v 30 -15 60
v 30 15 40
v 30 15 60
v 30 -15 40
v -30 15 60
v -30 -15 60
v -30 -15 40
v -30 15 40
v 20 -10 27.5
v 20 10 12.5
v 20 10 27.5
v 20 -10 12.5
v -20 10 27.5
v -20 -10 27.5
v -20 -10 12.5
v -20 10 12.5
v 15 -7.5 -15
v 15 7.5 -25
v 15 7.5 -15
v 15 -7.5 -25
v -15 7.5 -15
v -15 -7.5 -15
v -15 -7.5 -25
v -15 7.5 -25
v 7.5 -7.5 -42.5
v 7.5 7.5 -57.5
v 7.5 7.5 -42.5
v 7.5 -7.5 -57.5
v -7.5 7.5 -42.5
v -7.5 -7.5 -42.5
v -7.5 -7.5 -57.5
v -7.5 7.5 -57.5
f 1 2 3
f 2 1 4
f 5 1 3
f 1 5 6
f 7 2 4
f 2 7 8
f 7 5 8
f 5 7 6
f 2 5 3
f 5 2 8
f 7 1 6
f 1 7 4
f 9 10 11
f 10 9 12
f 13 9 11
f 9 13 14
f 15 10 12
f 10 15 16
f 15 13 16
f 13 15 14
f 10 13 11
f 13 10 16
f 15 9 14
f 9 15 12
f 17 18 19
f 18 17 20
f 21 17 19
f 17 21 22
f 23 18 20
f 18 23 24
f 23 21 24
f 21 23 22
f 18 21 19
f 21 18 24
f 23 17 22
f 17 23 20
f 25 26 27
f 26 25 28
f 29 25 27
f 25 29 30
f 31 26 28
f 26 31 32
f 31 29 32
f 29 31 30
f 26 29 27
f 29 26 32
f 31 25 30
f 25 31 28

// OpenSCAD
// Dimensions for each component
large_block_dims = [60, 30, 20];  // Length, Width, Height
medium_block_dims = [40, 20, 15];
small_block_dims = [30, 15, 10];
cubic_block_dims = [15, 15, 15];

// Positional offsets for independent placement
large_block_offset = [0, 0, 50];  // Elevated to avoid overlap
medium_block_offset = [0, 0, 20];
small_block_offset = [0, 0, -20];
cubic_block_offset = [0, 0, -50];

// Function to create a rectangular block
module rectangular_block(size, offset) {
    translate(offset)
        cube(size, center = true);
}

// Assembly of the model
module assembly() {
    // Large rectangular block (independent)
    rectangular_block(large_block_dims, large_block_offset);

    // Medium rectangular block (independent)
    rectangular_block(medium_block_dims, medium_block_offset);

    // Small rectangular block (independent)
    rectangular_block(small_block_dims, small_block_offset);

    // Cubic block (independent)
    rectangular_block(cubic_block_dims, cubic_block_offset);
}

// Render the assembly
assembly();
